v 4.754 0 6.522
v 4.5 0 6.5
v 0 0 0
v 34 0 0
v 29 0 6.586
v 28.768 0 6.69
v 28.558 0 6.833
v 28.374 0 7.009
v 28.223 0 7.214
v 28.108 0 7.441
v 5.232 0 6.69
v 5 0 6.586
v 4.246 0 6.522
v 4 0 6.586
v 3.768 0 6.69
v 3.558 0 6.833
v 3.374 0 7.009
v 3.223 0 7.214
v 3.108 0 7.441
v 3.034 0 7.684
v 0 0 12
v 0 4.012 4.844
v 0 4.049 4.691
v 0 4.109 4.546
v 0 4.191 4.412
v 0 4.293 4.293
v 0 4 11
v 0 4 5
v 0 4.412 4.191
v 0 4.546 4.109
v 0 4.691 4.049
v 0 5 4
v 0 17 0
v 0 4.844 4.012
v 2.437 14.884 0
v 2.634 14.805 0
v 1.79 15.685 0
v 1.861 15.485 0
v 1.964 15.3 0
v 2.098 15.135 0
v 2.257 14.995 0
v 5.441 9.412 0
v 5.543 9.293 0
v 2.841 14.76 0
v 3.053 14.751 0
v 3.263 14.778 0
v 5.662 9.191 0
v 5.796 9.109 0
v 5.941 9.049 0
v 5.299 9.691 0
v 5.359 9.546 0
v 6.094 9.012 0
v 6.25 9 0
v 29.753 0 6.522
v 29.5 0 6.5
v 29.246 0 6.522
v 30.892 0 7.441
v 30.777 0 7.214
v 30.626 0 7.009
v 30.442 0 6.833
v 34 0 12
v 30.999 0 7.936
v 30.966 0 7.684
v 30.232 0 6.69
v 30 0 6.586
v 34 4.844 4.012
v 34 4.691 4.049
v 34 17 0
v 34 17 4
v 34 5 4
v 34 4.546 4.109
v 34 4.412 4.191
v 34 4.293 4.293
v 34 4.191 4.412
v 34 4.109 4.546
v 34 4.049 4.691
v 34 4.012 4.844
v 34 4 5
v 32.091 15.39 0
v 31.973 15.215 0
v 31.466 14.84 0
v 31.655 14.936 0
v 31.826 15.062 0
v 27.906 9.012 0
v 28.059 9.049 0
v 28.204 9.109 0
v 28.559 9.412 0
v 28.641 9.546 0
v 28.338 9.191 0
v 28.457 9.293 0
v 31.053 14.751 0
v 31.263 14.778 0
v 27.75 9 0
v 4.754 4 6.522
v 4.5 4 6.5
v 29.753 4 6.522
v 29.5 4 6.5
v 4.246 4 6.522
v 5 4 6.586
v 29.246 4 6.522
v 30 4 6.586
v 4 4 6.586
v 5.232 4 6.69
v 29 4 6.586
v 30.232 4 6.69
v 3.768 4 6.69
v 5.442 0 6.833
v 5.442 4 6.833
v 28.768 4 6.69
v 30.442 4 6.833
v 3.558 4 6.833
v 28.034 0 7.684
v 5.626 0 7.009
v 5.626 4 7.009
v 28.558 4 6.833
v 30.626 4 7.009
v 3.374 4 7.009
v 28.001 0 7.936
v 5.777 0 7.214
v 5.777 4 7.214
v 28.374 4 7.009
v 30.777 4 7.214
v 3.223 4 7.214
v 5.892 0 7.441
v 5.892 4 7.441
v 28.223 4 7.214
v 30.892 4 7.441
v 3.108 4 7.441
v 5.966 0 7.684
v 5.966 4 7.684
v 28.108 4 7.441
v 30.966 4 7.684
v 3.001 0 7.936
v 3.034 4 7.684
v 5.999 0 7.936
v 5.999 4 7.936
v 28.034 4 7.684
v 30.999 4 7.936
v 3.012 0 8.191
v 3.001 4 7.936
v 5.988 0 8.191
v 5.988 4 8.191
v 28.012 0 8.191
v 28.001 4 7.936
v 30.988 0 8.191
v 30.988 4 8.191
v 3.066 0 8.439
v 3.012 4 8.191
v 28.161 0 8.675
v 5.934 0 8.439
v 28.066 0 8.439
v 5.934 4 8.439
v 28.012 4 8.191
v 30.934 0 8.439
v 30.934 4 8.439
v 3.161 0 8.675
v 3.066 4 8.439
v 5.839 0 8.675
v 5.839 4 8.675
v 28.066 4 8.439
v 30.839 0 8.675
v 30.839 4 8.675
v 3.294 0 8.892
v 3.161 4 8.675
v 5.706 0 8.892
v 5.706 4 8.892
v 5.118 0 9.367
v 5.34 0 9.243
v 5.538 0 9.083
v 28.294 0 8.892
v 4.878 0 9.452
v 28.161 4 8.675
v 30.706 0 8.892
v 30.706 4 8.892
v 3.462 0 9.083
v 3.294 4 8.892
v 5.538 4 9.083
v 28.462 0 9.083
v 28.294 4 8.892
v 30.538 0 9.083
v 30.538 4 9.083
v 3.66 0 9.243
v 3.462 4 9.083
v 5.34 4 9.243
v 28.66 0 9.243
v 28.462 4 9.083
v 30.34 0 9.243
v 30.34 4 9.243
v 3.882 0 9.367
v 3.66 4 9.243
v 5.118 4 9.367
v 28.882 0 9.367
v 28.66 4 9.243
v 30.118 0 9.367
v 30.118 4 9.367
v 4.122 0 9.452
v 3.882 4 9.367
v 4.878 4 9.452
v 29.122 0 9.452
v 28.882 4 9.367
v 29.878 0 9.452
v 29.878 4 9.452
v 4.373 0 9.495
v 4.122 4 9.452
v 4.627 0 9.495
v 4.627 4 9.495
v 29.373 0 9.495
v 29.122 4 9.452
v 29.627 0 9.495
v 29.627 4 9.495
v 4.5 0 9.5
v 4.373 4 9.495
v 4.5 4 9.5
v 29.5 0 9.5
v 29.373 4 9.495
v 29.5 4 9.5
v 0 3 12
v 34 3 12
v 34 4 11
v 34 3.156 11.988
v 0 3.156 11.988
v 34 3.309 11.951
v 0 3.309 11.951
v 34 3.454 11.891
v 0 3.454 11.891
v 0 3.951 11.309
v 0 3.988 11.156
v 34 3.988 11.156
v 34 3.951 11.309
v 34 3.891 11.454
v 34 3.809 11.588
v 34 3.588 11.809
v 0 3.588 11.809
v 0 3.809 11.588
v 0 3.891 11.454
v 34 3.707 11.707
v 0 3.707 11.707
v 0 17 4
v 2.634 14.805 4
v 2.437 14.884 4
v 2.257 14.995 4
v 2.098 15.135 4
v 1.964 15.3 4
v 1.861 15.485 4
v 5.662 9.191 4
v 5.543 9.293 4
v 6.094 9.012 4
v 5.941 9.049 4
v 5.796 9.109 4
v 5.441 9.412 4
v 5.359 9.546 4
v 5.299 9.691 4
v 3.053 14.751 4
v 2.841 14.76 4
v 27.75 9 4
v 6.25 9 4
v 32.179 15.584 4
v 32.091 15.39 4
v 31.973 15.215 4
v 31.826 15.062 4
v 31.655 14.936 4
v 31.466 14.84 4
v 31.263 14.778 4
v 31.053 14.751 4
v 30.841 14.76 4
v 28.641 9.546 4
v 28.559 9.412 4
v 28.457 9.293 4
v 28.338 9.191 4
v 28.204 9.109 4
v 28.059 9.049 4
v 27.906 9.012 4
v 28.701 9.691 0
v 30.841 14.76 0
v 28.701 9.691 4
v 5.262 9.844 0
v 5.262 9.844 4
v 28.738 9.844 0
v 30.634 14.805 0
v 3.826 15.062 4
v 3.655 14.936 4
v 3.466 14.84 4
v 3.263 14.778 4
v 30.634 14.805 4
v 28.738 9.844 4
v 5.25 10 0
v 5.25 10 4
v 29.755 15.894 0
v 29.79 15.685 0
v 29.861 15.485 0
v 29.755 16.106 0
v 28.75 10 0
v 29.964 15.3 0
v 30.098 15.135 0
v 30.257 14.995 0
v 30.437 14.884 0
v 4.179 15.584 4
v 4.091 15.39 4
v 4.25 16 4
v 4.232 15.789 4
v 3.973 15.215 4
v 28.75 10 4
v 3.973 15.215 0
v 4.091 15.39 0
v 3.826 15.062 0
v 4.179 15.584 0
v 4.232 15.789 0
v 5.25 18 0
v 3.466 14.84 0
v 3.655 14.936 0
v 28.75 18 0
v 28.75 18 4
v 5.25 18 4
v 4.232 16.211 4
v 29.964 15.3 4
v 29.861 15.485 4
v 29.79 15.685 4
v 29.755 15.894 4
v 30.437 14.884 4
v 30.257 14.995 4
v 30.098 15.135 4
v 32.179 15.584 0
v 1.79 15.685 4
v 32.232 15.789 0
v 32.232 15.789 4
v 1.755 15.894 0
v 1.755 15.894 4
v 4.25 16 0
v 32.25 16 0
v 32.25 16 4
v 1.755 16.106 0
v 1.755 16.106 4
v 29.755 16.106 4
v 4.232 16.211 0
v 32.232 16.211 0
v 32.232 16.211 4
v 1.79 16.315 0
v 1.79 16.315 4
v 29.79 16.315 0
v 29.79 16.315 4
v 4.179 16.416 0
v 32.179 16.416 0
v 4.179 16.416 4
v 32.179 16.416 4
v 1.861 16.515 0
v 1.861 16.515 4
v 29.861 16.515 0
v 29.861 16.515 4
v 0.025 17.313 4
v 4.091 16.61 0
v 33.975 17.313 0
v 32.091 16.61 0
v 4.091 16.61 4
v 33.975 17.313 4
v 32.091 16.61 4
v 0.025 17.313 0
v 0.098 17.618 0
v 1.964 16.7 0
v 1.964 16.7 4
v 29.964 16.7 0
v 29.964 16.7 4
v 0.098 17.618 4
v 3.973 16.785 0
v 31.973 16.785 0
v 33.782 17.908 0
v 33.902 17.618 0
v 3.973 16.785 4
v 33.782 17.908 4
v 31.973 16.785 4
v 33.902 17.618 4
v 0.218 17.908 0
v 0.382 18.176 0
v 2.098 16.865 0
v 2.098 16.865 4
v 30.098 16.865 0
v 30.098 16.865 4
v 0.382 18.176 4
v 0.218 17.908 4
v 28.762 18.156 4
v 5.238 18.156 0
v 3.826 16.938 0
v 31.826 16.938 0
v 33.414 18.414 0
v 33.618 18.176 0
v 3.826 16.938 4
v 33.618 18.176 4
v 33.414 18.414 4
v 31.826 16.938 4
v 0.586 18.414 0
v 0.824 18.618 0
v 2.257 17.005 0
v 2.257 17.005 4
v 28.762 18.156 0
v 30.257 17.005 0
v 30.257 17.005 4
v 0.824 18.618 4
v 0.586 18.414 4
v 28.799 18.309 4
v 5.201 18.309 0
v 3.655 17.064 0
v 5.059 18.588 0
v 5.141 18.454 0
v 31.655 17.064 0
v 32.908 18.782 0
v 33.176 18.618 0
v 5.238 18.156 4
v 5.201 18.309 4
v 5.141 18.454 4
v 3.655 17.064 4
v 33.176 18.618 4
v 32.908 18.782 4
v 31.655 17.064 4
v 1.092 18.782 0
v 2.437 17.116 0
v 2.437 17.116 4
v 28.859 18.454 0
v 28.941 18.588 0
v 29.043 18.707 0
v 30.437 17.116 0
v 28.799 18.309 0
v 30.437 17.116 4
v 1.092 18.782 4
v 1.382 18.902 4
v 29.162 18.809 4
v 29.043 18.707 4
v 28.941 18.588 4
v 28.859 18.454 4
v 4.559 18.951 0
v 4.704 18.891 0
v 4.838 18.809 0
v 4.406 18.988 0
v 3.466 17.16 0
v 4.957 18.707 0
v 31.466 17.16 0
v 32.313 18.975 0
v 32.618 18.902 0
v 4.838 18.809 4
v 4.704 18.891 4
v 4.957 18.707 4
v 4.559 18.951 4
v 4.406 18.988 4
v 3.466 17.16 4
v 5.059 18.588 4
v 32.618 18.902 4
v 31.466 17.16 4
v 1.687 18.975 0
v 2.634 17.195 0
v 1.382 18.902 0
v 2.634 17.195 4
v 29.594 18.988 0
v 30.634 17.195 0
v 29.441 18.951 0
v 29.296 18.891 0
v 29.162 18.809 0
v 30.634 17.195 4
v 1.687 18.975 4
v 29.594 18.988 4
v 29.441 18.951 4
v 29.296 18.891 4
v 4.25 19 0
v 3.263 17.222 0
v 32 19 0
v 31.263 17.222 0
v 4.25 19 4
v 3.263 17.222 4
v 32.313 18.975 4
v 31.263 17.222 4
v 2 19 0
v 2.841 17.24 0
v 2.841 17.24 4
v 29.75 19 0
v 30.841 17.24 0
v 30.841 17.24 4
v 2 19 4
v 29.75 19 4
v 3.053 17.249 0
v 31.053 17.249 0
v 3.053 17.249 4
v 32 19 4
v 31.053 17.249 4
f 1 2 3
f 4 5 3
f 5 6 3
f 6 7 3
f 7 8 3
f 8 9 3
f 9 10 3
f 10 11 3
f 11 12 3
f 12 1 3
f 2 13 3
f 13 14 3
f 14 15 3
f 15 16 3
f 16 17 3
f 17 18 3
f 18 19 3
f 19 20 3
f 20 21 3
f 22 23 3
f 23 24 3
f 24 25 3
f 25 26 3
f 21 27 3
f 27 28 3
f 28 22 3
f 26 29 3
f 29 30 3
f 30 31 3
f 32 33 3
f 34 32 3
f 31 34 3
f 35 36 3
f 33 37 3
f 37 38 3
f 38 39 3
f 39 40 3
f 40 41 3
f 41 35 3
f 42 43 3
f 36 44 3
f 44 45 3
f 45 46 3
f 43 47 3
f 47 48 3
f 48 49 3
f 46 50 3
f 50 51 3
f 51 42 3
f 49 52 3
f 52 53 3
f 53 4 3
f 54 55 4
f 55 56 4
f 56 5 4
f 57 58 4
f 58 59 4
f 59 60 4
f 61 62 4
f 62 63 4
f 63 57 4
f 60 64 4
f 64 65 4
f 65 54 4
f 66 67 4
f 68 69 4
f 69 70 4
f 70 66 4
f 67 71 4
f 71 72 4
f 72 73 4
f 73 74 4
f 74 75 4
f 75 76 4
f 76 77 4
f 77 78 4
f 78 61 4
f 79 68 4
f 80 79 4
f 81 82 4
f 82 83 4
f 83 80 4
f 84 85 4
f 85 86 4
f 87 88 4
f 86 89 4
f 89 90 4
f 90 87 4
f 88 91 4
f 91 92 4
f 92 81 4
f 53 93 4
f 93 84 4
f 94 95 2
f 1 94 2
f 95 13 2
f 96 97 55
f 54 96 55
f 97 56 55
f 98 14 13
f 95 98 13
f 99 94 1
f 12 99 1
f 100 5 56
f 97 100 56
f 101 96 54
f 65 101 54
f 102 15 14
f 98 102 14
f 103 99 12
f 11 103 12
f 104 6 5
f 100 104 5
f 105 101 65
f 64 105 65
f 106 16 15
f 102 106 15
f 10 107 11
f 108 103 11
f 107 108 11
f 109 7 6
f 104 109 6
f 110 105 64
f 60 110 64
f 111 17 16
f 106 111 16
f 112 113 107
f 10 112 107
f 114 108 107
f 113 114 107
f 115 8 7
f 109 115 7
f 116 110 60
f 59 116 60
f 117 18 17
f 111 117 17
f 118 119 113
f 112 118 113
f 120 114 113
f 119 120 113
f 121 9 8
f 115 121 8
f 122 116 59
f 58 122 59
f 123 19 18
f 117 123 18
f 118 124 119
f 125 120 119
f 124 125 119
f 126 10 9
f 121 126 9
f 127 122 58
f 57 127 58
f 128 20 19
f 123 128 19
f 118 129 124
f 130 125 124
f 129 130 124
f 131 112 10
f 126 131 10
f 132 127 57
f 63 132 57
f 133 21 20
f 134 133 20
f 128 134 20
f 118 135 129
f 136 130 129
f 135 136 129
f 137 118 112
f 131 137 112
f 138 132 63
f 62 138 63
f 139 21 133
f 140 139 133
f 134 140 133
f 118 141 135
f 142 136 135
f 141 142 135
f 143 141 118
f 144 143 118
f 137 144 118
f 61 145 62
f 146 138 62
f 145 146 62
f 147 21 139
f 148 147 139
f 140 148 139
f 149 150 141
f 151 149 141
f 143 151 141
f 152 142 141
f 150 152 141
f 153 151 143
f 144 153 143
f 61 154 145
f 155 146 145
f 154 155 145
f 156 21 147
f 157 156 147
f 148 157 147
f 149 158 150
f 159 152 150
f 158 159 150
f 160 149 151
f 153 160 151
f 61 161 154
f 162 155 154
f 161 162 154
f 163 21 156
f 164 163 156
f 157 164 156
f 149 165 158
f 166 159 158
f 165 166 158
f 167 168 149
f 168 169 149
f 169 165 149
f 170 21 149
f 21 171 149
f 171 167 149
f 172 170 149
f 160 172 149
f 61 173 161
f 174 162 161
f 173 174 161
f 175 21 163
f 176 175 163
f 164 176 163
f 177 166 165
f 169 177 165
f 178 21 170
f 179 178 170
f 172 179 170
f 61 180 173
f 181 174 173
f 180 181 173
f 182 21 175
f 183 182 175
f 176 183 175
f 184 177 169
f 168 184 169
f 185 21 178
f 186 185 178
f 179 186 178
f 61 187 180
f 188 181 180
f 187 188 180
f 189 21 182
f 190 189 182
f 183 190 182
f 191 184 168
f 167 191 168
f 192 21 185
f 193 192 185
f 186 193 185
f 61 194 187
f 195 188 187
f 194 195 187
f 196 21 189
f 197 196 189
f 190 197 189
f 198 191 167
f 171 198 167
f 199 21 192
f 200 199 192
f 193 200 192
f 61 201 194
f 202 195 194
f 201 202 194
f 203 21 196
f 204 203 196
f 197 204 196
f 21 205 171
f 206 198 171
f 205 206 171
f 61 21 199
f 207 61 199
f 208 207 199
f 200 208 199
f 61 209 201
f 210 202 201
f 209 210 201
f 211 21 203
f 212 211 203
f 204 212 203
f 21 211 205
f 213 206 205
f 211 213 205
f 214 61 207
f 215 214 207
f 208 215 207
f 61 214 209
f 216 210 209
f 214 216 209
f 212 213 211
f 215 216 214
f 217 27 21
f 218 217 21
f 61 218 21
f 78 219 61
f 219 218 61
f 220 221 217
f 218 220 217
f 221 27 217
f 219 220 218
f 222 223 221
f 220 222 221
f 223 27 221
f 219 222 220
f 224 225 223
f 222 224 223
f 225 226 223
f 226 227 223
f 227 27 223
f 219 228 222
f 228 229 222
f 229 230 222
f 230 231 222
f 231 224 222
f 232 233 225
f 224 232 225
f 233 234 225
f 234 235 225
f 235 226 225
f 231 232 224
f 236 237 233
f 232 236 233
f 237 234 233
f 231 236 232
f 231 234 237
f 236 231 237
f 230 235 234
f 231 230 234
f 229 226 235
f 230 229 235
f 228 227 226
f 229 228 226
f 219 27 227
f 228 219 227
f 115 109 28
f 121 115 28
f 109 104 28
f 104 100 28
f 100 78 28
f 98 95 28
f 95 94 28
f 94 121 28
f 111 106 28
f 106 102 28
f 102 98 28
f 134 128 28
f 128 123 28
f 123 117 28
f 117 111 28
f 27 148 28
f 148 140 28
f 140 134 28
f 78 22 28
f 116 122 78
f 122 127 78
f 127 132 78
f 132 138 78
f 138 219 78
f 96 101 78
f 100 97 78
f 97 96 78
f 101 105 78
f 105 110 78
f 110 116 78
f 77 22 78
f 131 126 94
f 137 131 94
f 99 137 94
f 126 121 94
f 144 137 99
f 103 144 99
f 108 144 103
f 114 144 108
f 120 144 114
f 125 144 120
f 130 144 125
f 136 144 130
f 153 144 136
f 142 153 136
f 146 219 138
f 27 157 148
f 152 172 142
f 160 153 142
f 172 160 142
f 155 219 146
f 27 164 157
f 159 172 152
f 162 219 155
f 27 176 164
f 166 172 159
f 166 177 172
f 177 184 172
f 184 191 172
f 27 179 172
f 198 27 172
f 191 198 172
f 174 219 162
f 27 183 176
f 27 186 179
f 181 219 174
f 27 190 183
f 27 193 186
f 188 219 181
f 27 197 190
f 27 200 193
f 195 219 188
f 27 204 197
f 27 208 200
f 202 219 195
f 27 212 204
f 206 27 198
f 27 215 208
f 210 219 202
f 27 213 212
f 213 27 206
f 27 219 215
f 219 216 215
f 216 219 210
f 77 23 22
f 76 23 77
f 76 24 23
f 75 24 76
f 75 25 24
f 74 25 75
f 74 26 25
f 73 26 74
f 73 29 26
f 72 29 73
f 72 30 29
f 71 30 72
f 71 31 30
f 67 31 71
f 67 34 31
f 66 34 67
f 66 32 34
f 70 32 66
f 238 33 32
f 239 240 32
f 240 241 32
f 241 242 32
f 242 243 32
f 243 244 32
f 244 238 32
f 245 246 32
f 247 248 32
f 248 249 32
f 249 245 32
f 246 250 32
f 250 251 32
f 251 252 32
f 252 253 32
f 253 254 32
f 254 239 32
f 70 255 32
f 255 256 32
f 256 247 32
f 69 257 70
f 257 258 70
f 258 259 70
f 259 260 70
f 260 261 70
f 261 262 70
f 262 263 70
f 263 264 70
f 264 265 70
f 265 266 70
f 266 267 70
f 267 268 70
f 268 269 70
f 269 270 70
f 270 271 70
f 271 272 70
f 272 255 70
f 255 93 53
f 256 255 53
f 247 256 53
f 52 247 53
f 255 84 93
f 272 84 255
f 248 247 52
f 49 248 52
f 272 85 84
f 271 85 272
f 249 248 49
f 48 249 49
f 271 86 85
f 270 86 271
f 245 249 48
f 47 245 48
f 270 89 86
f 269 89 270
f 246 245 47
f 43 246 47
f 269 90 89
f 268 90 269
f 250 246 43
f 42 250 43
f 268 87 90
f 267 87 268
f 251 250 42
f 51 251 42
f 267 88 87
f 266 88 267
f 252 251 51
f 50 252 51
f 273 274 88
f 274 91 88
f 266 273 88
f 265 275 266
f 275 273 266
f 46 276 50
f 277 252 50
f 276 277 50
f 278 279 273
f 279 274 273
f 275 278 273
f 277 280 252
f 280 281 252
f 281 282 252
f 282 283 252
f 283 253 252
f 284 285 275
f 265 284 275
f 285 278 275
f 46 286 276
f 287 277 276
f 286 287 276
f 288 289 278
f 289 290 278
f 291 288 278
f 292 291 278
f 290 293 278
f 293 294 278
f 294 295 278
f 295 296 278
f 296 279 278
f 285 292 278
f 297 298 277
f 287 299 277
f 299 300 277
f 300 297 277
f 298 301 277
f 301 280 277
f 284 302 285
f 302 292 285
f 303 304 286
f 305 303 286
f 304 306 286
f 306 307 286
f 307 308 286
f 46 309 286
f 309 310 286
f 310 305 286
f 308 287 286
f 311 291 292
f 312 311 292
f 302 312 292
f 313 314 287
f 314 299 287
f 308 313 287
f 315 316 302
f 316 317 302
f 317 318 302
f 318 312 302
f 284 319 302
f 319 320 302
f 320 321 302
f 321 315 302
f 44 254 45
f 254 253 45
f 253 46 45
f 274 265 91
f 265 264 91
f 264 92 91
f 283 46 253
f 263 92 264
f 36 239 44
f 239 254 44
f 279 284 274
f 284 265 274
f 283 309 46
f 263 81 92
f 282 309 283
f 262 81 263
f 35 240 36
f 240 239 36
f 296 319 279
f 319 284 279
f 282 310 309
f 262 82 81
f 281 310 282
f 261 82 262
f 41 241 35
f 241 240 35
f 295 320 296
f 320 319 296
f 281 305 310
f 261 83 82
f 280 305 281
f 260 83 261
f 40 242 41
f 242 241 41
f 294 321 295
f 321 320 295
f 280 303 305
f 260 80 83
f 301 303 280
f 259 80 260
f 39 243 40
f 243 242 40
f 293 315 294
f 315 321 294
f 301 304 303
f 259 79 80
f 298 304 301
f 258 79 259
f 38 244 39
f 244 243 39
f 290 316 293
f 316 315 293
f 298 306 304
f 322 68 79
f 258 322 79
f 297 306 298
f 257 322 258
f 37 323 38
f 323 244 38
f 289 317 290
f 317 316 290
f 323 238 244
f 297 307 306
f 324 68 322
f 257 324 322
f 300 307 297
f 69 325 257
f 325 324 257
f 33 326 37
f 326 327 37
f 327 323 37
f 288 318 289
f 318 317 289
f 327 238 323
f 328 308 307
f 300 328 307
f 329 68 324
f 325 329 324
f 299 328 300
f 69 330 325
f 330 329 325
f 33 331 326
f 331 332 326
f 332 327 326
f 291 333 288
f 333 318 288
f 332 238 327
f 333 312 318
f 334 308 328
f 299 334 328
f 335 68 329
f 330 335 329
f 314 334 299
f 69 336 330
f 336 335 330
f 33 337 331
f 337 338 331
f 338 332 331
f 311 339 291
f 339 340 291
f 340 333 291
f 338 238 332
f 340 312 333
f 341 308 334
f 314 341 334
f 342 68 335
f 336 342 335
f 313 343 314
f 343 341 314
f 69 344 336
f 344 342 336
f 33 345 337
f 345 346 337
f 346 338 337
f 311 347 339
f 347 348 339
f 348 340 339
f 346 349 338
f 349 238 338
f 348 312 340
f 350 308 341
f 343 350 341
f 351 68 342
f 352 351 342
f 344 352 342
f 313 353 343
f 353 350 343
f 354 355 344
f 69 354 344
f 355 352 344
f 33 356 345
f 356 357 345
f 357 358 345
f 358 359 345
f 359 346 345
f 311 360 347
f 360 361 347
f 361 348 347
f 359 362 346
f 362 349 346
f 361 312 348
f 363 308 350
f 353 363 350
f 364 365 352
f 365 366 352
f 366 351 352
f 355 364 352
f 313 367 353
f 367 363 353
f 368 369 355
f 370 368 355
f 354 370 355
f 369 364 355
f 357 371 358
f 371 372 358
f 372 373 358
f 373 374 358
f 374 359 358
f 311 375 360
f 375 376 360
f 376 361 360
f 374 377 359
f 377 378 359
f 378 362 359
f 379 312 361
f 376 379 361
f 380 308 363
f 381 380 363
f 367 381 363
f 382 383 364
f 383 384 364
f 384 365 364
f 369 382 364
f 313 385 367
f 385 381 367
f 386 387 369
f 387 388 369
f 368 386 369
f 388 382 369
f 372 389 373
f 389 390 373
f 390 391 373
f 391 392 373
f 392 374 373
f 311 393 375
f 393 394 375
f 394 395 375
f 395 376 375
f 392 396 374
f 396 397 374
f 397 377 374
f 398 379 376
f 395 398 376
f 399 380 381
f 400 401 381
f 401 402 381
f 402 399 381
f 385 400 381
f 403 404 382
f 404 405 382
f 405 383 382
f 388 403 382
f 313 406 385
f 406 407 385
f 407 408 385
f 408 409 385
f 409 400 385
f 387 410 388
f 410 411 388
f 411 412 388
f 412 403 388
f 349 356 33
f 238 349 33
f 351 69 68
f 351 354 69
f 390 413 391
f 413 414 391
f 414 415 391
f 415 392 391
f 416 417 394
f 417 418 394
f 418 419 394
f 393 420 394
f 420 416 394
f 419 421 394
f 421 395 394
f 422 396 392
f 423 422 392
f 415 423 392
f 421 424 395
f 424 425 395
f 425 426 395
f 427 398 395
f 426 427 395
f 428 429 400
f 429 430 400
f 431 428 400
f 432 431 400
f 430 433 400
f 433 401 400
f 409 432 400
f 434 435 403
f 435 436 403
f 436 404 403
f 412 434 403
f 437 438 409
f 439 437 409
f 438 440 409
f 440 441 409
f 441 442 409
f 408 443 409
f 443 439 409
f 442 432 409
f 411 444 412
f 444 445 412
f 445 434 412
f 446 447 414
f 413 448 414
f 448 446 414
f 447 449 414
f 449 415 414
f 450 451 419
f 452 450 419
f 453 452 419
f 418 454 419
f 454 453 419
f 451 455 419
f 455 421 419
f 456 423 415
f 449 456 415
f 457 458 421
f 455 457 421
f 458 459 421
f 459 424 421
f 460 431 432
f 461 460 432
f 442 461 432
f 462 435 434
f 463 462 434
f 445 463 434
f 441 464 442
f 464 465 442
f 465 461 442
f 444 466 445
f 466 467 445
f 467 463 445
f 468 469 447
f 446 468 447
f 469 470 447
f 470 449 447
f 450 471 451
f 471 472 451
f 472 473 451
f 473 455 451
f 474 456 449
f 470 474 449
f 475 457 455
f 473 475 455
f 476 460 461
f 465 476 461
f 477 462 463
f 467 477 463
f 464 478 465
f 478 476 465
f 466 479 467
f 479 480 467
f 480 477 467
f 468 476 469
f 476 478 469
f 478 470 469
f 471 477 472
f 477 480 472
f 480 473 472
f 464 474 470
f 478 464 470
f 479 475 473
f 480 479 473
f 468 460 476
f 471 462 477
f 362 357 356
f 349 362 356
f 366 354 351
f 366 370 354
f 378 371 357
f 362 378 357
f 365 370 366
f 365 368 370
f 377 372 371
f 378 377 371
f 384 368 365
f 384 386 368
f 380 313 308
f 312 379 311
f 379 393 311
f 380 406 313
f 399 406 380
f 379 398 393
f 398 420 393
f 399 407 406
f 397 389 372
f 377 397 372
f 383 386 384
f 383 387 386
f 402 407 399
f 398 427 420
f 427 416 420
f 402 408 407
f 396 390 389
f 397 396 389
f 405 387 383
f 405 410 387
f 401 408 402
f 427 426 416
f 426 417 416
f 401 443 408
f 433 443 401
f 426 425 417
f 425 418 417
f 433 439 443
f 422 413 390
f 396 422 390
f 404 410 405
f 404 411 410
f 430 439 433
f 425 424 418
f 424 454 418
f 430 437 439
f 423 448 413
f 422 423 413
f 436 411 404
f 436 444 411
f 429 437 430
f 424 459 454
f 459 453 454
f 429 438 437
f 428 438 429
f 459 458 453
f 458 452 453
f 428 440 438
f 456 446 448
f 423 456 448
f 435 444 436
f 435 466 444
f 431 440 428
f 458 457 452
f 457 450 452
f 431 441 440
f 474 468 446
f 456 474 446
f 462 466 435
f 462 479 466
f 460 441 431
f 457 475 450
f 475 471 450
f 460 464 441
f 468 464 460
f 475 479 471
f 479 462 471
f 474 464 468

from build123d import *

# Parameters (mm, degrees)
SKETCH_1_W          = 34
SKETCH_1_H          = 12
SKETCH_1_R          = 1.5
EXTRUDE_4_DEPTH     = 4
SKETCH_4_W          = 34
SKETCH_4_H          = 4
EXTRUDE_5_DEPTH     = 15
SKETCH_5_R          = 1.25
SKETCH_5_W          = 23.5
SKETCH_5_H          = 10
CUT_EXTRUDE_1_DEPTH = 40.761790704
FILLET_4_R          = 1
FILLET_6_R          = 2
FILLET_7_R          = 2
FILLET_8_R          = 1
FILLET_9_R          = 1
FILLET_10_R         = 1
FILLET_11_R         = 1


with BuildPart() as part:
    # 草图1 → 凸台-拉伸4 (new body)
    with BuildSketch(Plane(origin=(0, 0, 0), x_dir=(1, 0, 0), z_dir=(0, 1, 0))):
        with Locations((17, -6)):
            Rectangle(SKETCH_1_W, SKETCH_1_H)
        with Locations(Location((4.5, -8, 0), (0, 0, 270))):
            Circle(SKETCH_1_R, mode=Mode.SUBTRACT)
        with Locations(Location((29.5, -8, 0), (0, 0, 270))):
            Circle(SKETCH_1_R, mode=Mode.SUBTRACT)
    extrude(amount=EXTRUDE_4_DEPTH)

    # 草图4 → 凸台-拉伸5 (add)
    with BuildSketch(Plane(origin=(0, 4, 0), x_dir=(1, 0, 0), z_dir=(0, 1, 0))):
        with Locations((17, -2)):
            Rectangle(SKETCH_4_W, SKETCH_4_H)
    extrude(amount=EXTRUDE_5_DEPTH)

    # 草图5 → 切除-拉伸1 (cut, through all)
    with BuildSketch(Plane.XY.offset(4)):
        with Locations((3, 16)):
            Circle(SKETCH_5_R)
        with Locations((31, 16)):
            Circle(SKETCH_5_R)
        with Locations((17, 14)):
            Rectangle(SKETCH_5_W, SKETCH_5_H)
    extrude(amount=-CUT_EXTRUDE_1_DEPTH, mode=Mode.SUBTRACT)

    # 圆角4
    fillet_4_edges = [part.edges().sort_by_distance(p)[0] for p in [
        (17, 4, 12),
    ]]
    fillet(fillet_4_edges, radius=FILLET_4_R)

    # 圆角6
    fillet_6_edges = [part.edges().sort_by_distance(p)[0] for p in [
        (0, 19, 2),
    ]]
    fillet(fillet_6_edges, radius=FILLET_6_R)

    # 圆角7
    fillet_7_edges = [part.edges().sort_by_distance(p)[0] for p in [
        (34, 19, 2),
    ]]
    fillet(fillet_7_edges, radius=FILLET_7_R)

    # 圆角8
    fillet_8_edges = [part.edges().sort_by_distance(p)[0] for p in [
        (5.25, 9, 2),
    ]]
    fillet(fillet_8_edges, radius=FILLET_8_R)

    # 圆角9
    fillet_9_edges = [part.edges().sort_by_distance(p)[0] for p in [
        (28.75, 9, 2),
    ]]
    fillet(fillet_9_edges, radius=FILLET_9_R)

    # 圆角10
    fillet_10_edges = [part.edges().sort_by_distance(p)[0] for p in [
        (5.25, 19, 2),
        (28.75, 19, 2),
    ]]
    fillet(fillet_10_edges, radius=FILLET_10_R)

    # 圆角11
    fillet_11_edges = [part.edges().sort_by_distance(p)[0] for p in [
        (17, 4, 4),
    ]]
    fillet(fillet_11_edges, radius=FILLET_11_R)


solid = part.part
